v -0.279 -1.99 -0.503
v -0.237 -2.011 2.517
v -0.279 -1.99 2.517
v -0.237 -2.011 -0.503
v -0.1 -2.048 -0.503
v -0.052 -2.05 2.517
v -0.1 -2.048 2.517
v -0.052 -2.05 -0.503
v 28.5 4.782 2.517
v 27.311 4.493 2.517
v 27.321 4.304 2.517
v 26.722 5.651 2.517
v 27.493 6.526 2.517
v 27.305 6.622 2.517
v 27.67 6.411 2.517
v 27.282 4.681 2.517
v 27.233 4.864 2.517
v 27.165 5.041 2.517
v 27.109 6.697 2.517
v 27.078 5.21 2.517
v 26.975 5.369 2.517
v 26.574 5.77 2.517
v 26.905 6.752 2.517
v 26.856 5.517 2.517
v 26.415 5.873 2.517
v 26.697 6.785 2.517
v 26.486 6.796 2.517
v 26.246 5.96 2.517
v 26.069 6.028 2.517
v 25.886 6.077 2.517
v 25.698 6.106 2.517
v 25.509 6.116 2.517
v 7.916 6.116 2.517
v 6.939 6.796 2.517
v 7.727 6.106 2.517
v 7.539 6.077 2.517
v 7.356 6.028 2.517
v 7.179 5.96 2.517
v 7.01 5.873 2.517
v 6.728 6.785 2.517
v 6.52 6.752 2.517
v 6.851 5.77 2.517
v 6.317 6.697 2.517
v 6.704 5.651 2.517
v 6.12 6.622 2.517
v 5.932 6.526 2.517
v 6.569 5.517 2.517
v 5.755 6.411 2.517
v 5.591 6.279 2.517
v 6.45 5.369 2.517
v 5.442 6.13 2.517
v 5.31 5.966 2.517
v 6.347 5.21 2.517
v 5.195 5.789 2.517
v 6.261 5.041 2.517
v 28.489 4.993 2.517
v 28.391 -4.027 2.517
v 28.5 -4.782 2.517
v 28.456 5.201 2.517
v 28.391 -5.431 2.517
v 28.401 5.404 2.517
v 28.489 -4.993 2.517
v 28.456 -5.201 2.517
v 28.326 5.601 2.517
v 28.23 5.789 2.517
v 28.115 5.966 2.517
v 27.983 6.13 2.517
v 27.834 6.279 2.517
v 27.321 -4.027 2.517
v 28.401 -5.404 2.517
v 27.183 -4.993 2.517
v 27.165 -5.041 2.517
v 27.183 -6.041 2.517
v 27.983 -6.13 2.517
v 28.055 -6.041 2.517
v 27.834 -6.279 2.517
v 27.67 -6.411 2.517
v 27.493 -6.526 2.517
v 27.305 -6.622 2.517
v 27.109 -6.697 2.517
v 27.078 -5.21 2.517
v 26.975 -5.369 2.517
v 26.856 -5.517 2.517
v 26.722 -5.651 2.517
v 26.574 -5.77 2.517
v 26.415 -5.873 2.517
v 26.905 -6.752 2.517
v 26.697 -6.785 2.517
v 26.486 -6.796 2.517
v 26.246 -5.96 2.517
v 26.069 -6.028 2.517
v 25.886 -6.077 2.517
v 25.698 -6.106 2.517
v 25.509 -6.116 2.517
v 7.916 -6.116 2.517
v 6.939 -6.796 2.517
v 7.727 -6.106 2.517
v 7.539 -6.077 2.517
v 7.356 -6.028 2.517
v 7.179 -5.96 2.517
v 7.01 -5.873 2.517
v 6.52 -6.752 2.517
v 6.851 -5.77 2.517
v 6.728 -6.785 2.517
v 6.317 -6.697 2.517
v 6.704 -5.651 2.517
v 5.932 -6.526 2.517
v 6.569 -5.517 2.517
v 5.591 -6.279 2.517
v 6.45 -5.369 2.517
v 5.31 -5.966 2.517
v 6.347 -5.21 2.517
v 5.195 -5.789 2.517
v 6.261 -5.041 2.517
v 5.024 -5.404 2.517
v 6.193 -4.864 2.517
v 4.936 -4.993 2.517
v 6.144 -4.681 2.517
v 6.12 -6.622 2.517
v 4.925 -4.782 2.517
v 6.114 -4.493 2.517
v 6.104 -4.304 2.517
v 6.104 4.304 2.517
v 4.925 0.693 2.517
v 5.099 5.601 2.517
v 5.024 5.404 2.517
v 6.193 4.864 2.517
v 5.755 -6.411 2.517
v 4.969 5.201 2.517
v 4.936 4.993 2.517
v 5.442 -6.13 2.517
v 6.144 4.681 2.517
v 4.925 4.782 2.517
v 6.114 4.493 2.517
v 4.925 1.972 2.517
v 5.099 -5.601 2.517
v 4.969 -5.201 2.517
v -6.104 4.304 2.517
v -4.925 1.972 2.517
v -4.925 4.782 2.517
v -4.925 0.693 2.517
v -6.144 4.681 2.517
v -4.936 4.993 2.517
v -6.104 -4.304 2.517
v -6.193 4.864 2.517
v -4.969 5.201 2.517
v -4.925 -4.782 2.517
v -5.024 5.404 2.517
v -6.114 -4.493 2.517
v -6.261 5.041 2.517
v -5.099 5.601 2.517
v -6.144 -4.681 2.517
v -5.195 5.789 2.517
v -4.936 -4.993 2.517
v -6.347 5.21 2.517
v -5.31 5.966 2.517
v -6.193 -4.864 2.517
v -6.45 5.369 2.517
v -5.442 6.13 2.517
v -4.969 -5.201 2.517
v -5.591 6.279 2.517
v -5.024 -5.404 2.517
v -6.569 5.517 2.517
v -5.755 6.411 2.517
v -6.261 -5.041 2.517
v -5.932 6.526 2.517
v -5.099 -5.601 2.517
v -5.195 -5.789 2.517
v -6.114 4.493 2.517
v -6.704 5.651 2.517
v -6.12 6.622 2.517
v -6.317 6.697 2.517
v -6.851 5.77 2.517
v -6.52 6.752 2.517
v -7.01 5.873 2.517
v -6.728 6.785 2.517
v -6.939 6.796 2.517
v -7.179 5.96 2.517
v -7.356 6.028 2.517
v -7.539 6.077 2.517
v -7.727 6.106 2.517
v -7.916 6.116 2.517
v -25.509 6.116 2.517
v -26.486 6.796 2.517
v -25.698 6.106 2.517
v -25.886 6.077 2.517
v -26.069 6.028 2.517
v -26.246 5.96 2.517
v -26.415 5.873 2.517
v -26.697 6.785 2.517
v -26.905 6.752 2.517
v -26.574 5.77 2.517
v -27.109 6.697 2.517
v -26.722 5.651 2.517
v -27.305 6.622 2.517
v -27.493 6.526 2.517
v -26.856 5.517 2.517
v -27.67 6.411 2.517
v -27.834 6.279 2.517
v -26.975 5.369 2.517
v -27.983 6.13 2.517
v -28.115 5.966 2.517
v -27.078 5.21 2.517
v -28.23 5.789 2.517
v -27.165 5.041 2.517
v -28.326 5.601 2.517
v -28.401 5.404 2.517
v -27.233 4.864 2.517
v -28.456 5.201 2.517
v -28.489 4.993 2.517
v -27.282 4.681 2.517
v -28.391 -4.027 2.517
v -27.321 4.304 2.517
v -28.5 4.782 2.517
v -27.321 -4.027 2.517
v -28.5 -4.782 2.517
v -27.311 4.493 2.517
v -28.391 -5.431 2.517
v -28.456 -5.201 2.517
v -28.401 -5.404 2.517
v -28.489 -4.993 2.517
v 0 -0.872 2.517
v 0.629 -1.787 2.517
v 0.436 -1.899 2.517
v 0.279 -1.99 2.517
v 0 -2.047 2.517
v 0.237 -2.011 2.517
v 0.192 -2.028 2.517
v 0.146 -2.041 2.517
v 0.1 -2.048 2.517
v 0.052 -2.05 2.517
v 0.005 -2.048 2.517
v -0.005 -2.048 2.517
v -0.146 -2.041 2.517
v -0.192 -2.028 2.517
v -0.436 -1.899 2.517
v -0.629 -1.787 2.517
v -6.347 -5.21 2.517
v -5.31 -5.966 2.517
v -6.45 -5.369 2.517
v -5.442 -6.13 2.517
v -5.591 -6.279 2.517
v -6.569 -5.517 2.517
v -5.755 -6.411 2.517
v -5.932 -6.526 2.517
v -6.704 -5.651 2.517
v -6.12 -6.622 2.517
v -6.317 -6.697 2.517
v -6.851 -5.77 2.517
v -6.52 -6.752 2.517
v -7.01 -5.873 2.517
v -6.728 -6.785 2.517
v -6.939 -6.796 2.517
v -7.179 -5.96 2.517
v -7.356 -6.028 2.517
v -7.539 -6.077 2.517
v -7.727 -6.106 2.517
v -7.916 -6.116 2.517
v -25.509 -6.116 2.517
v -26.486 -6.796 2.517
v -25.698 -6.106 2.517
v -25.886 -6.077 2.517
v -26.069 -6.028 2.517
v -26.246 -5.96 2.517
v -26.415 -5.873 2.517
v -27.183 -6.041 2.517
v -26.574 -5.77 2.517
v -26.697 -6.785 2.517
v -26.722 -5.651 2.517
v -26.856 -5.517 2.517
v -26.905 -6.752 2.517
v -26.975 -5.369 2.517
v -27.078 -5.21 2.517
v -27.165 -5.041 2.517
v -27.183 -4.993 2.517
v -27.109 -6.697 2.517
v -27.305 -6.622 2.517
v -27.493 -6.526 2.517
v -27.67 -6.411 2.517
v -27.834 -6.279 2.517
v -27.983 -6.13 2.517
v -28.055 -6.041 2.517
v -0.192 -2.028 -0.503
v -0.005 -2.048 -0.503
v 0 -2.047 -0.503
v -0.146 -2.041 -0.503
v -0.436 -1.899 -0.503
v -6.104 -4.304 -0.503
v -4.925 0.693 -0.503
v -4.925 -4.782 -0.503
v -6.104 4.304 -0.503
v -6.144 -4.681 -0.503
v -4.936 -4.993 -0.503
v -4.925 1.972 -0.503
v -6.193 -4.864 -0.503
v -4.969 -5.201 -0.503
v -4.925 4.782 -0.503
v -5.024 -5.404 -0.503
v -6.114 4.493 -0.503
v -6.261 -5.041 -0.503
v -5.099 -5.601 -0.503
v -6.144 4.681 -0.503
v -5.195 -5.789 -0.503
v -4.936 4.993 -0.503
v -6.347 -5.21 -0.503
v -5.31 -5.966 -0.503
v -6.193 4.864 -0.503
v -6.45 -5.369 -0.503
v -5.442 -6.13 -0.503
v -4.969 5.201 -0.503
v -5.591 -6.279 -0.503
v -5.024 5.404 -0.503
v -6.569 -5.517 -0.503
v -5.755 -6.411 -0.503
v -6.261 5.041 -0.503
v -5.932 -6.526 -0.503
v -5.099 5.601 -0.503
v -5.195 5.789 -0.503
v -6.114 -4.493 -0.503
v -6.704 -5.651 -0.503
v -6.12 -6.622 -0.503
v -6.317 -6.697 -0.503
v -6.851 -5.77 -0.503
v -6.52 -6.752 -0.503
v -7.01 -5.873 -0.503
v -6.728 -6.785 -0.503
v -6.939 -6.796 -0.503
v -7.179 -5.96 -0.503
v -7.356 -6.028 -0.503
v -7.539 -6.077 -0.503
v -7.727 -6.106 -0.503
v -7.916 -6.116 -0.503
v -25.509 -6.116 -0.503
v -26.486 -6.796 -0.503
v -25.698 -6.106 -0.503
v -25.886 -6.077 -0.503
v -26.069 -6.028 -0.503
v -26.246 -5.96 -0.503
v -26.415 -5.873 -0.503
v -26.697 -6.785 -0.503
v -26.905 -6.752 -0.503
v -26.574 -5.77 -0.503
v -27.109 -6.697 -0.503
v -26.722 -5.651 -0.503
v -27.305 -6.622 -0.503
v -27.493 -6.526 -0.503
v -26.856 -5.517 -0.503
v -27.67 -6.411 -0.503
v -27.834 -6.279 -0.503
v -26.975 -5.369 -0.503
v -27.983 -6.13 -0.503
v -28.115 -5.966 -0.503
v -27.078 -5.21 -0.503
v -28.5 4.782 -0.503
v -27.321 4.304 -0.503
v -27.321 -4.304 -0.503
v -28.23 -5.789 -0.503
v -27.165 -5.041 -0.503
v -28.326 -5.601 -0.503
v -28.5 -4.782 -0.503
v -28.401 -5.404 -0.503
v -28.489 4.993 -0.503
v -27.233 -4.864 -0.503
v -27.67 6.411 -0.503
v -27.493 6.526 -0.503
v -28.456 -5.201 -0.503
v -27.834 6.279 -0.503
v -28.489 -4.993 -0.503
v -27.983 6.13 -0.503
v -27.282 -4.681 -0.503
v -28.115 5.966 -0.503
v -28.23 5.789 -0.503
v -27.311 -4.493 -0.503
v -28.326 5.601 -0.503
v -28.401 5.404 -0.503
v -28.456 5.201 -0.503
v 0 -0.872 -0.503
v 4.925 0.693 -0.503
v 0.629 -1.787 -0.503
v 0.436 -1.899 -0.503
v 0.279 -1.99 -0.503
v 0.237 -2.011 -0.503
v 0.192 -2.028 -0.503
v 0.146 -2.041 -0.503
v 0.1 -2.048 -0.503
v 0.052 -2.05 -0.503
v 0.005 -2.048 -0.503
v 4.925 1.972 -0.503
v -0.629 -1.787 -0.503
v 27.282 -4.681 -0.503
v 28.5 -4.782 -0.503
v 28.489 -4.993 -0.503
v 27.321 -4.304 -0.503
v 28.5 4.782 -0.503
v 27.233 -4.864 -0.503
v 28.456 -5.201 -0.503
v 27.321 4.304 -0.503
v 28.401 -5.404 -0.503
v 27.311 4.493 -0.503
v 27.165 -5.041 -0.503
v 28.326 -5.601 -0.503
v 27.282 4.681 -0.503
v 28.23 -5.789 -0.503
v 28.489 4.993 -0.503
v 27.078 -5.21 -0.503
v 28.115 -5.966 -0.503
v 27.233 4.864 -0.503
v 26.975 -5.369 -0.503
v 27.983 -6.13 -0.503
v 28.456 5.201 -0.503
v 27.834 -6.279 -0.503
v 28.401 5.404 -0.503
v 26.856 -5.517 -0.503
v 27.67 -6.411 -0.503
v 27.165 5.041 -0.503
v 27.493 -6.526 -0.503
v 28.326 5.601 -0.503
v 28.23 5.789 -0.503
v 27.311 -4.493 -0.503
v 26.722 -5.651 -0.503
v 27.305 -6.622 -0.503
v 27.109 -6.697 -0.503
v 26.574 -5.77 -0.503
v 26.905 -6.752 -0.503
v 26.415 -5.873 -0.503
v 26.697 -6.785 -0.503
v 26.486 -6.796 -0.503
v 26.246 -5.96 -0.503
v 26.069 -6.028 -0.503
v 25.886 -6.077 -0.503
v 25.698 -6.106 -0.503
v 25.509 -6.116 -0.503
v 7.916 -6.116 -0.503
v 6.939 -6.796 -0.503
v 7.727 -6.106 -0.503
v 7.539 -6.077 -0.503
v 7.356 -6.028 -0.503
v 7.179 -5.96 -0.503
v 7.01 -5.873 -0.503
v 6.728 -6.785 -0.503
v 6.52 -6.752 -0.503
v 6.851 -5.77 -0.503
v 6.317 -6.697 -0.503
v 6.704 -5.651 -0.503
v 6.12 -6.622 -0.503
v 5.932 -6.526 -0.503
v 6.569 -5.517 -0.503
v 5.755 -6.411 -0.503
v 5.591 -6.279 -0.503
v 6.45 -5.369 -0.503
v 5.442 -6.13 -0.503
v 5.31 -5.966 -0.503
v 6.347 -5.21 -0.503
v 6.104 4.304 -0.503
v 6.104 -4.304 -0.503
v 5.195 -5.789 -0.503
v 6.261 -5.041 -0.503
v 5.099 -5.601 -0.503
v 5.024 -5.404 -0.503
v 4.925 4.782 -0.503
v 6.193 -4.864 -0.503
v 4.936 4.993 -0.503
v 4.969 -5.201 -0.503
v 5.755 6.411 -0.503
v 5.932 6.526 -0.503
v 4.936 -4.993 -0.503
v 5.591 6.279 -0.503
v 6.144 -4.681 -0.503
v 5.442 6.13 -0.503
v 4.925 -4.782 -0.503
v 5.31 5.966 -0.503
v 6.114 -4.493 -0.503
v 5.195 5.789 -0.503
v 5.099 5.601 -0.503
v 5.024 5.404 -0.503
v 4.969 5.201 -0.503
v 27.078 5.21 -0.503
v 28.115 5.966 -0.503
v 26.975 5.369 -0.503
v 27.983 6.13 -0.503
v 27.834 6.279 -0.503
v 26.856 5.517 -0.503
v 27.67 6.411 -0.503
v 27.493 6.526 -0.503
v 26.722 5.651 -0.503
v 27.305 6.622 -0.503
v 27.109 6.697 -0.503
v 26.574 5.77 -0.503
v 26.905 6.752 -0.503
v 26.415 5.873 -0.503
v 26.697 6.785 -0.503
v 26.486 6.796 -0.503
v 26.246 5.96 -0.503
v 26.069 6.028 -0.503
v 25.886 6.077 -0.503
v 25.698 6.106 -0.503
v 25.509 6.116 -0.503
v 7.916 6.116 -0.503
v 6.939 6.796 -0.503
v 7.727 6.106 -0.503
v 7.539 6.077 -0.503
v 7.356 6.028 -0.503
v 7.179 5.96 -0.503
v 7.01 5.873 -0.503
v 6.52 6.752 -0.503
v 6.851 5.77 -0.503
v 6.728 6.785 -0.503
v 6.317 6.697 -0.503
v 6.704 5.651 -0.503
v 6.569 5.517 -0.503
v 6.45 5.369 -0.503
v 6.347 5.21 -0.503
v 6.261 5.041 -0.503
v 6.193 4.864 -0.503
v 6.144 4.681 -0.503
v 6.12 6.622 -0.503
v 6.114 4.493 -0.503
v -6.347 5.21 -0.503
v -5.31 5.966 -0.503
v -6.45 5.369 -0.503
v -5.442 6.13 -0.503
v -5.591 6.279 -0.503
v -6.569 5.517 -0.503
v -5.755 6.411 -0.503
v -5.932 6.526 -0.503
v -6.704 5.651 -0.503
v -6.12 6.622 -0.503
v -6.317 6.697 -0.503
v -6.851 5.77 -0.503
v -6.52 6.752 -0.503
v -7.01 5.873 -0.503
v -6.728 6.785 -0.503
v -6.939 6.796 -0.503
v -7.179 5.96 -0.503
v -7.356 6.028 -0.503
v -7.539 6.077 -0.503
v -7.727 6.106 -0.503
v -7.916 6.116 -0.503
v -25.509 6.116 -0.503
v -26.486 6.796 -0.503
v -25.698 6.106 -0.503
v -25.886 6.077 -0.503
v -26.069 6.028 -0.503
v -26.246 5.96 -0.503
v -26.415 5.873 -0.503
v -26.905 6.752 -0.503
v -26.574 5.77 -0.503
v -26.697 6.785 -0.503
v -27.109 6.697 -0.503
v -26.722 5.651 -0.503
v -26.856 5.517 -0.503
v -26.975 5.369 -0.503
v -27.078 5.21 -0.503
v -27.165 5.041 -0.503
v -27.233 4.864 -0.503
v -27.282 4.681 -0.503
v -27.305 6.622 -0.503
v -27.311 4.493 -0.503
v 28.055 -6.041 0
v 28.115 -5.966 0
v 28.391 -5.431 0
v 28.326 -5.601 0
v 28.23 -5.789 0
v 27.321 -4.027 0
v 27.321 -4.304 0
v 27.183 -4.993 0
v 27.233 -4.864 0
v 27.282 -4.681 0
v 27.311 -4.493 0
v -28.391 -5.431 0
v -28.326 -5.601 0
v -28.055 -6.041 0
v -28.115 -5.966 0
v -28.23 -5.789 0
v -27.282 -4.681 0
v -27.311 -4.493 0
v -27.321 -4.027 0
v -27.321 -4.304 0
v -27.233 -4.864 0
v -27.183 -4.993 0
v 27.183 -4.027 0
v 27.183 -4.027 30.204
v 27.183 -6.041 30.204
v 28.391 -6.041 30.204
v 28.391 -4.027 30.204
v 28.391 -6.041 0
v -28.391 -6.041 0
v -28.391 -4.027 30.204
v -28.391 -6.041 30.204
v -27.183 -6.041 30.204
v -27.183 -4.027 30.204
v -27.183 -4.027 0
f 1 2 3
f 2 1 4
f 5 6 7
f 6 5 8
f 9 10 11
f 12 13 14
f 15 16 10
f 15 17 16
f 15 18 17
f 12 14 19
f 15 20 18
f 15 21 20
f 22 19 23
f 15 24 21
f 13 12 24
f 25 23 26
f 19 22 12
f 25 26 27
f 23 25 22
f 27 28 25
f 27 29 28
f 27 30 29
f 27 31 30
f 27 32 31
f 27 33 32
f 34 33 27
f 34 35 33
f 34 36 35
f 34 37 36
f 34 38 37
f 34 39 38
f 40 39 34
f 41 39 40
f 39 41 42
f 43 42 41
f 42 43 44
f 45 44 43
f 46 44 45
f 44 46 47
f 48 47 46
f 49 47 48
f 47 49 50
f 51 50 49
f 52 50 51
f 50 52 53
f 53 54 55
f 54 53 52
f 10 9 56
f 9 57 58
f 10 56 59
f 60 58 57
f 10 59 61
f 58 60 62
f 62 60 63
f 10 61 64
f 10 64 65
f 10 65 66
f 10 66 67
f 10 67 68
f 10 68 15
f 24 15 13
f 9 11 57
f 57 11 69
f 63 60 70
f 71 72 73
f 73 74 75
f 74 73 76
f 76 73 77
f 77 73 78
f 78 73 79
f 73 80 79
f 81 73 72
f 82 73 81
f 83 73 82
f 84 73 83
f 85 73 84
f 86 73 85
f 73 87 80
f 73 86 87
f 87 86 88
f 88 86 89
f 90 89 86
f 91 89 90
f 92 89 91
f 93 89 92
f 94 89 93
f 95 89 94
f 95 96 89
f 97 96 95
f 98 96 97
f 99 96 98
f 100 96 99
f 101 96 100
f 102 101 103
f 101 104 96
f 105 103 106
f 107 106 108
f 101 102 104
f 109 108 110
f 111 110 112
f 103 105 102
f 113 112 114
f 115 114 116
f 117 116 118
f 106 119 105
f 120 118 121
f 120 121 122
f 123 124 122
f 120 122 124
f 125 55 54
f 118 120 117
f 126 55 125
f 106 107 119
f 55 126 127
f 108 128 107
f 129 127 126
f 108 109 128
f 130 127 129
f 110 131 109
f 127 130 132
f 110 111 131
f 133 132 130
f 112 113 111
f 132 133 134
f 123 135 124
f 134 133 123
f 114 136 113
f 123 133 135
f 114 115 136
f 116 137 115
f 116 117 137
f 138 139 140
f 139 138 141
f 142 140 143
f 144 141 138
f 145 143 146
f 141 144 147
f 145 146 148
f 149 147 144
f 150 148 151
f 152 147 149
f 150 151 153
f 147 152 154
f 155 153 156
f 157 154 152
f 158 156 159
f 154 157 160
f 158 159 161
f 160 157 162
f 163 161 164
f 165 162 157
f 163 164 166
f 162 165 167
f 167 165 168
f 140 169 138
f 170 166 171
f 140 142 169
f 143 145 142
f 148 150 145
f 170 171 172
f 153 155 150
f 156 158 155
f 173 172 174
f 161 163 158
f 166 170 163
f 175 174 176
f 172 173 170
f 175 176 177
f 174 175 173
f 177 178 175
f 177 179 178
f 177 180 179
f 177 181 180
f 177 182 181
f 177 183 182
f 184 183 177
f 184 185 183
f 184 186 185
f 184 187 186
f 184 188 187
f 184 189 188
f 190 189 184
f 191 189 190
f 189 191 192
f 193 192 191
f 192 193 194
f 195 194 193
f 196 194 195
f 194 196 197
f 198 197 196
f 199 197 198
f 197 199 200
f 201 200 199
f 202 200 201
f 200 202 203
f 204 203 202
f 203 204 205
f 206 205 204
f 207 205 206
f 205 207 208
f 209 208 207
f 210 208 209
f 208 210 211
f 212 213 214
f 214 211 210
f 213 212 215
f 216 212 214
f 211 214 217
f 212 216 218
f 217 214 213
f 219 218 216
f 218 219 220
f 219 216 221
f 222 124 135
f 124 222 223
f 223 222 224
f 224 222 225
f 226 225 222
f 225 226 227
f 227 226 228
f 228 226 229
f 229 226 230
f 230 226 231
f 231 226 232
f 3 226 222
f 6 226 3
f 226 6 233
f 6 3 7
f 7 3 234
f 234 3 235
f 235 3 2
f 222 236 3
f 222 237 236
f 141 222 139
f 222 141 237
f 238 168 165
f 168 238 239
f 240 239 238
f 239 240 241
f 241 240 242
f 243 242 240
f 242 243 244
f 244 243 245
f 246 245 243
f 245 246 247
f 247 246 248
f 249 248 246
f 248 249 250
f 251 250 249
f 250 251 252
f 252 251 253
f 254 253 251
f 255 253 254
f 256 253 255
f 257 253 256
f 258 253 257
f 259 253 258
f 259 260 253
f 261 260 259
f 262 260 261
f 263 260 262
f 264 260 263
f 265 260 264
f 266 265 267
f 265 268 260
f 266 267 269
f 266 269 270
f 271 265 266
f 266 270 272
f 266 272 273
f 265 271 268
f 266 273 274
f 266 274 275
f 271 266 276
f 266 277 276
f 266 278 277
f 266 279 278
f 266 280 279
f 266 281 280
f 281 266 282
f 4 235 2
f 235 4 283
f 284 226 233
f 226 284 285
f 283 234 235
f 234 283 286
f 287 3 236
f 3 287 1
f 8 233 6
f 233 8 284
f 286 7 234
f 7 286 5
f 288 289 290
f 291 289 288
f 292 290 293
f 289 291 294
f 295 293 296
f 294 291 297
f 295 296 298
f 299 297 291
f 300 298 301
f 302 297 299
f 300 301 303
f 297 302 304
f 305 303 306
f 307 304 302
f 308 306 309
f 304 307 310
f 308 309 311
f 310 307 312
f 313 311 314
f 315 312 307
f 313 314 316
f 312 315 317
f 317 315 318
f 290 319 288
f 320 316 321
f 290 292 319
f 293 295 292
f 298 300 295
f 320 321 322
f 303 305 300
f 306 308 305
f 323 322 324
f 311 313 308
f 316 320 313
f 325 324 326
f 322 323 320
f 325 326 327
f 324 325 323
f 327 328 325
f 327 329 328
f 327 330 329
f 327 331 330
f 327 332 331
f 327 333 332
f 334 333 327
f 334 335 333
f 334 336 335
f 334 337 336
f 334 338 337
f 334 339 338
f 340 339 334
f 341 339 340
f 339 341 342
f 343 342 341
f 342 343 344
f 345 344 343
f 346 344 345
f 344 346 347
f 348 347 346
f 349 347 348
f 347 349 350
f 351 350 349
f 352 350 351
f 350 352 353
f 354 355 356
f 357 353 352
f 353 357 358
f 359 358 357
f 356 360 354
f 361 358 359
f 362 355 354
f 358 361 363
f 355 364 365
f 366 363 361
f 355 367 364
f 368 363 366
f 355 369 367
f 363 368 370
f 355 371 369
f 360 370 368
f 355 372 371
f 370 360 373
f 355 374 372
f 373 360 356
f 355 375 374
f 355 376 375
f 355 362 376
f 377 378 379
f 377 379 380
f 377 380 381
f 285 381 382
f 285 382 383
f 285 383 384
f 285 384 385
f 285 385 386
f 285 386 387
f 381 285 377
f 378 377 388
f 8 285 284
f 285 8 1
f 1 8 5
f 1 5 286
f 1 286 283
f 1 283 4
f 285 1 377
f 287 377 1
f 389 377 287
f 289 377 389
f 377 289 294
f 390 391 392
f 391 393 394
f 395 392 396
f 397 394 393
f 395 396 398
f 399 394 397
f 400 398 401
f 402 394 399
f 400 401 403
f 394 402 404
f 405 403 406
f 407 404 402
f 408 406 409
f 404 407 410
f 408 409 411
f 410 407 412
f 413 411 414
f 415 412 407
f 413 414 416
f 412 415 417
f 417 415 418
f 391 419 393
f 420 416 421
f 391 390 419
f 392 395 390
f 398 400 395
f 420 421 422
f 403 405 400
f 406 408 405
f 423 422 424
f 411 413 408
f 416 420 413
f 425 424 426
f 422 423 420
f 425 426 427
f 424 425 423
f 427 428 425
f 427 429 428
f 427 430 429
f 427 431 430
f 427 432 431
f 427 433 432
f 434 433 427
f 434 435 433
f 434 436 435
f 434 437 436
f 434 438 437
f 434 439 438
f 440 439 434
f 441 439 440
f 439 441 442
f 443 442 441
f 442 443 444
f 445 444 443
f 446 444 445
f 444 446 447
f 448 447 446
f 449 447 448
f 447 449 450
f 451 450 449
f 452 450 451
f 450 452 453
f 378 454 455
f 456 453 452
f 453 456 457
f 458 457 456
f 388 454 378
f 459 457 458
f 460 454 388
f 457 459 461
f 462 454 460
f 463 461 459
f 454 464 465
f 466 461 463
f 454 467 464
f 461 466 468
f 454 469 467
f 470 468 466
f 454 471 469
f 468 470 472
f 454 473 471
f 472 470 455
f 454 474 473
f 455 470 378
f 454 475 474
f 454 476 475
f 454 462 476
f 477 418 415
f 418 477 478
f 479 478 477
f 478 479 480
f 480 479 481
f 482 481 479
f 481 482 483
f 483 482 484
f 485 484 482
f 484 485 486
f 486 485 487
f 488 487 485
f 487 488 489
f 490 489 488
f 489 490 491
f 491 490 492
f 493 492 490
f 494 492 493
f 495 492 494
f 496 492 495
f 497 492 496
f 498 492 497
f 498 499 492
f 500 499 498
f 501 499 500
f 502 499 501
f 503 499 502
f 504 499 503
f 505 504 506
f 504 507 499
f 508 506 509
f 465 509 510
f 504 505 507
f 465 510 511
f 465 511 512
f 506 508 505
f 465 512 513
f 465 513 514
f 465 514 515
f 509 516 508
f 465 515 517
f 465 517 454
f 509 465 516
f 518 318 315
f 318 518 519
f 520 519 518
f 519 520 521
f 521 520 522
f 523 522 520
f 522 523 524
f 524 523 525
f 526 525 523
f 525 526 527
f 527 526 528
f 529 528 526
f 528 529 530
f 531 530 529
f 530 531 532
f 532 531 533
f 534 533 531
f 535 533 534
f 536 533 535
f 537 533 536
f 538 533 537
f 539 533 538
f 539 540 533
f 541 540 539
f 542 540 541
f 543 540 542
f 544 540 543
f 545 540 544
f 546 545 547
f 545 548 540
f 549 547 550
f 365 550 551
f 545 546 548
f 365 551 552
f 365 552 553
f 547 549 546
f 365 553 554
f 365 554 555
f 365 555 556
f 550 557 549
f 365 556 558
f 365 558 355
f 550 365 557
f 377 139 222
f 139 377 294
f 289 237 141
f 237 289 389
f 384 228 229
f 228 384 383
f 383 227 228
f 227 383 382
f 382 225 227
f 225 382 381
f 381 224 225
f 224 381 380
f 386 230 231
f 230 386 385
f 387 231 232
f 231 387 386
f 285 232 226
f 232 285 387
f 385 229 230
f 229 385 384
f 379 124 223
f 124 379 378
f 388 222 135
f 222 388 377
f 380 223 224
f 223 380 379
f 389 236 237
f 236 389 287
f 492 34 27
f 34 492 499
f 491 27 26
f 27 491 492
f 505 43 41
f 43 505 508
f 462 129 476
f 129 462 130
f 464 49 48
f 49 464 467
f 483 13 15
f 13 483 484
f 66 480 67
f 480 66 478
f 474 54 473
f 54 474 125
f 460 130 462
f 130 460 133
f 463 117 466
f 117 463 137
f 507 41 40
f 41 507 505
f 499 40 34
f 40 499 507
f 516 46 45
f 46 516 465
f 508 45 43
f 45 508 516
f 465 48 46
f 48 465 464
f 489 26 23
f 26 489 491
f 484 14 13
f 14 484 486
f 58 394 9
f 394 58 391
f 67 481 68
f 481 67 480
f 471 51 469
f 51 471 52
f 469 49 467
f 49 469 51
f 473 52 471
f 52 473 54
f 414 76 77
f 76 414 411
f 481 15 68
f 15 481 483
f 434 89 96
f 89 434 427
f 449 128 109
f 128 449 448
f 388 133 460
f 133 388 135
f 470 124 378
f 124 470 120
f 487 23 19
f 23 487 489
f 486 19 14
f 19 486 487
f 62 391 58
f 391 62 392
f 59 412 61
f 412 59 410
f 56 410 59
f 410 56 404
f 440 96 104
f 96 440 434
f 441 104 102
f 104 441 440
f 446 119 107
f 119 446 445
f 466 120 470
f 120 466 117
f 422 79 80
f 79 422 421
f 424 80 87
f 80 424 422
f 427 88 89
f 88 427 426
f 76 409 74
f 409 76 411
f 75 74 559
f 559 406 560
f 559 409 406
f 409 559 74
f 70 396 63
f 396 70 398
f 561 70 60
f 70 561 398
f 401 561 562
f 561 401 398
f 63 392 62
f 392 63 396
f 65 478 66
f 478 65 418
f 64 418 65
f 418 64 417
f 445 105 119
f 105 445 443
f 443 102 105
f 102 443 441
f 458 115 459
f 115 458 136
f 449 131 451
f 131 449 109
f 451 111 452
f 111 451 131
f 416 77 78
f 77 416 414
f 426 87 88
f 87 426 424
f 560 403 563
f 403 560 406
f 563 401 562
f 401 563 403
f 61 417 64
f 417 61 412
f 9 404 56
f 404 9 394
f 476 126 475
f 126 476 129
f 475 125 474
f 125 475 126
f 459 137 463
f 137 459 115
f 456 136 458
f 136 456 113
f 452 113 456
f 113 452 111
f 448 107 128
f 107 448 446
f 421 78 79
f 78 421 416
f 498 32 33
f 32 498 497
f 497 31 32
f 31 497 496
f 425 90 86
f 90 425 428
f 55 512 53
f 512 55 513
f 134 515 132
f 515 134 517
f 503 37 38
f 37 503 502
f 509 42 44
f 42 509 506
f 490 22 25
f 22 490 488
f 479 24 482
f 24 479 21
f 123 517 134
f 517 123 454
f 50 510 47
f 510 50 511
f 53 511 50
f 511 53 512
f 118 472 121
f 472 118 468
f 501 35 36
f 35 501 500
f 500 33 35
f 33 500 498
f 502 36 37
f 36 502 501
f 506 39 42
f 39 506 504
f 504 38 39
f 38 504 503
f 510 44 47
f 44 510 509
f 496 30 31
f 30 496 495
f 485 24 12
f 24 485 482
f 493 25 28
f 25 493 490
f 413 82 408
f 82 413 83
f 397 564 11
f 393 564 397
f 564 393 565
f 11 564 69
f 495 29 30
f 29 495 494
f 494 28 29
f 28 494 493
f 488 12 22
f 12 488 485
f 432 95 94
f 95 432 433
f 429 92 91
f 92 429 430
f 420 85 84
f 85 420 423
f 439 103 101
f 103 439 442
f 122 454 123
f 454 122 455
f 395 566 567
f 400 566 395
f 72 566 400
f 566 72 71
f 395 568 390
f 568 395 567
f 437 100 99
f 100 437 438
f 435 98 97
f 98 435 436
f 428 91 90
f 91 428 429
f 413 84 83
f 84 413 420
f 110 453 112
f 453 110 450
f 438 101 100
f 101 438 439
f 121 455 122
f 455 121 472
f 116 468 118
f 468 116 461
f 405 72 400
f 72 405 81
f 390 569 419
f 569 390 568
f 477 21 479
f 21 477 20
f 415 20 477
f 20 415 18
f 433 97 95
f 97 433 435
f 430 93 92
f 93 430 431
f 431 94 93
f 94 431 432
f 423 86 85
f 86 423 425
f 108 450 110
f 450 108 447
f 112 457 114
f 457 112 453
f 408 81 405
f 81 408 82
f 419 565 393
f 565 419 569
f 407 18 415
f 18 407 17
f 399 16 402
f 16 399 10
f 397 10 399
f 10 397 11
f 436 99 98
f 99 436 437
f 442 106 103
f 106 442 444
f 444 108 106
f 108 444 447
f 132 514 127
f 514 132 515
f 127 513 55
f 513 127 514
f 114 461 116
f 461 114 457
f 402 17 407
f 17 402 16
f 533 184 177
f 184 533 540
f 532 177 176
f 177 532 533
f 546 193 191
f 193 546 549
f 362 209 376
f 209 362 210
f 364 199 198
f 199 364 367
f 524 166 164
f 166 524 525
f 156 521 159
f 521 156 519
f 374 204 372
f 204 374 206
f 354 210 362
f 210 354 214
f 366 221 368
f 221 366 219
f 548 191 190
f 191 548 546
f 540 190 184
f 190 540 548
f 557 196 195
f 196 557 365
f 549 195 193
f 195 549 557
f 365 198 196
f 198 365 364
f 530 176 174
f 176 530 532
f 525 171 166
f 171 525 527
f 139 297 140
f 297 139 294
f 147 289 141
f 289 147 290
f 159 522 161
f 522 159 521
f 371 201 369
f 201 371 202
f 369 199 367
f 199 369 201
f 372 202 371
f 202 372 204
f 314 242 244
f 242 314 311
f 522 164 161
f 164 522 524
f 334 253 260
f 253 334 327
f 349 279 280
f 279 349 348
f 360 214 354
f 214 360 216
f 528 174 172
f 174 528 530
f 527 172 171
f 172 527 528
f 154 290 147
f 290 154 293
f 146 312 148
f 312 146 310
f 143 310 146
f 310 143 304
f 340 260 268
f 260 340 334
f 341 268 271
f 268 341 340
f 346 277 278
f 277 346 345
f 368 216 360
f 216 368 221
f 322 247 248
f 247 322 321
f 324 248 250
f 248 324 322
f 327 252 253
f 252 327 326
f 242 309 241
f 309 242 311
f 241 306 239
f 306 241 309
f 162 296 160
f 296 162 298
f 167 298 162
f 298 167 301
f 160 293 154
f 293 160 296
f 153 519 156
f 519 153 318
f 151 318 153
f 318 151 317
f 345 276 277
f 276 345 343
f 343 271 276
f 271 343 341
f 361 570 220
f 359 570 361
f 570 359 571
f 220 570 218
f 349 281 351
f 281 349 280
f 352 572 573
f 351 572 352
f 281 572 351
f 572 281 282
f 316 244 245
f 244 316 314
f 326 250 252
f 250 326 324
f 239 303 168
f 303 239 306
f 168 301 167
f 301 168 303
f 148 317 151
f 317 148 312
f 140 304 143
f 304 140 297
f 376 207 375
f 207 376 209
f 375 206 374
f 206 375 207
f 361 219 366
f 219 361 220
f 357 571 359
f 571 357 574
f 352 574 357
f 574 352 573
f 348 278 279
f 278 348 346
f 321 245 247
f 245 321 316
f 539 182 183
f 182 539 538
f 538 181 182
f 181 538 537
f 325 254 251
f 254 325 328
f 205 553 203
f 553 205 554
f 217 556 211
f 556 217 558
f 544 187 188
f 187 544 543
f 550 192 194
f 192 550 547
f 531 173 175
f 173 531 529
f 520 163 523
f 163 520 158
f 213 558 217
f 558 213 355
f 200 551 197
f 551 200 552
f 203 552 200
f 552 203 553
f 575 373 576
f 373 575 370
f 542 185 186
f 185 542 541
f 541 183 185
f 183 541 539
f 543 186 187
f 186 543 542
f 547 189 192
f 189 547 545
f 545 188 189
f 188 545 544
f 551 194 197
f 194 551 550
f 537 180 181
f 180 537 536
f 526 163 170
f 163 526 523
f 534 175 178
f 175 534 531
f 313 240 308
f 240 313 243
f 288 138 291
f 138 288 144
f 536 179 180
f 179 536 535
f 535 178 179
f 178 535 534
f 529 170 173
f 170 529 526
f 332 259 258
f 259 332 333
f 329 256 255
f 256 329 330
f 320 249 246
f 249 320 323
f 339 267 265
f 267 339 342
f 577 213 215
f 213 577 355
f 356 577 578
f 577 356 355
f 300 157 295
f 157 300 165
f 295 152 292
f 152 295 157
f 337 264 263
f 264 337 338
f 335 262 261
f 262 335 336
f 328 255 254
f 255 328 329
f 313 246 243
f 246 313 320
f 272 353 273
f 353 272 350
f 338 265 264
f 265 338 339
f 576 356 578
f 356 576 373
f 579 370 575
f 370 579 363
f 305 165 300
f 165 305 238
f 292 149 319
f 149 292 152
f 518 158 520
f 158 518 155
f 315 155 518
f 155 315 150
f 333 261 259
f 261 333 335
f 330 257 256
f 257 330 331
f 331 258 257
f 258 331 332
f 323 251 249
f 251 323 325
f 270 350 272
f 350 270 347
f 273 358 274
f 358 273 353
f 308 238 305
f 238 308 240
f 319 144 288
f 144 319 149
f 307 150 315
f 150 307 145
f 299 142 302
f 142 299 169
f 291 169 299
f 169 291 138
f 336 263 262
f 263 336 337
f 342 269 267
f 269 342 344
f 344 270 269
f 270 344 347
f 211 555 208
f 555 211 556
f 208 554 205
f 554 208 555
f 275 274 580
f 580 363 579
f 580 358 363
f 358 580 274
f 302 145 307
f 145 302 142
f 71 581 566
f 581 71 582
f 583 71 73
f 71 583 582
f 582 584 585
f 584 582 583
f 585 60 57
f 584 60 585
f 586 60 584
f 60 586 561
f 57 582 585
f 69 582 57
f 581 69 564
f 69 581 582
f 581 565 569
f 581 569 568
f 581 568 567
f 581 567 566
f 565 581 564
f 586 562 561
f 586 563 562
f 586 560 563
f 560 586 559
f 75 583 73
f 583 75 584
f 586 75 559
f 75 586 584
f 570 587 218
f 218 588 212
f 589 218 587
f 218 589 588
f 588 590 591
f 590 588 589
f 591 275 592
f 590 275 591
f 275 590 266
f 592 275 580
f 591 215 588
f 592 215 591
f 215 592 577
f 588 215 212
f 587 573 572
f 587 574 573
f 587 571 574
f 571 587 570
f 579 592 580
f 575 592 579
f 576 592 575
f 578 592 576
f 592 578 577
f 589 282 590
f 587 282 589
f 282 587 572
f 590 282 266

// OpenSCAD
$fn = 60;

module lens_shape () {
    minkowski(){
        cylinder(1);
        resize([6*1.618,4.75,0.5]) cube([1,1,1], center=true);
    }
}

module lens(){
    difference(){
        lens_shape();
        scale([0.9, 0.9, 1]) lens_shape();
    }
}


module nose_bridge(){    
    minkowski(){
        cylinder(d=0.45);
        union(){
            translate([1.3,0,0])
                rotate([0,0,-60])
                resize([0.1,3,0.5])
                cube([1,1,1], center=true);    
            translate([-1.3,0,0])
                rotate([0,0,60])
                resize([0.1,3,0.5])
                cube([1,1,1], center=true);
        }
    }
}

module arm(){
    translate([0,-2.5,7.5]) cube([0.6,1.0,15], center=true);
}


resize([57,0,0], auto=true) union(){
    translate([ 8.3,0,0]) lens();
    translate([-8.3,0,0]) lens();
    translate([ 13.80,0,0]) arm();
    translate([-13.80,0,0]) arm();
    nose_bridge();
}
